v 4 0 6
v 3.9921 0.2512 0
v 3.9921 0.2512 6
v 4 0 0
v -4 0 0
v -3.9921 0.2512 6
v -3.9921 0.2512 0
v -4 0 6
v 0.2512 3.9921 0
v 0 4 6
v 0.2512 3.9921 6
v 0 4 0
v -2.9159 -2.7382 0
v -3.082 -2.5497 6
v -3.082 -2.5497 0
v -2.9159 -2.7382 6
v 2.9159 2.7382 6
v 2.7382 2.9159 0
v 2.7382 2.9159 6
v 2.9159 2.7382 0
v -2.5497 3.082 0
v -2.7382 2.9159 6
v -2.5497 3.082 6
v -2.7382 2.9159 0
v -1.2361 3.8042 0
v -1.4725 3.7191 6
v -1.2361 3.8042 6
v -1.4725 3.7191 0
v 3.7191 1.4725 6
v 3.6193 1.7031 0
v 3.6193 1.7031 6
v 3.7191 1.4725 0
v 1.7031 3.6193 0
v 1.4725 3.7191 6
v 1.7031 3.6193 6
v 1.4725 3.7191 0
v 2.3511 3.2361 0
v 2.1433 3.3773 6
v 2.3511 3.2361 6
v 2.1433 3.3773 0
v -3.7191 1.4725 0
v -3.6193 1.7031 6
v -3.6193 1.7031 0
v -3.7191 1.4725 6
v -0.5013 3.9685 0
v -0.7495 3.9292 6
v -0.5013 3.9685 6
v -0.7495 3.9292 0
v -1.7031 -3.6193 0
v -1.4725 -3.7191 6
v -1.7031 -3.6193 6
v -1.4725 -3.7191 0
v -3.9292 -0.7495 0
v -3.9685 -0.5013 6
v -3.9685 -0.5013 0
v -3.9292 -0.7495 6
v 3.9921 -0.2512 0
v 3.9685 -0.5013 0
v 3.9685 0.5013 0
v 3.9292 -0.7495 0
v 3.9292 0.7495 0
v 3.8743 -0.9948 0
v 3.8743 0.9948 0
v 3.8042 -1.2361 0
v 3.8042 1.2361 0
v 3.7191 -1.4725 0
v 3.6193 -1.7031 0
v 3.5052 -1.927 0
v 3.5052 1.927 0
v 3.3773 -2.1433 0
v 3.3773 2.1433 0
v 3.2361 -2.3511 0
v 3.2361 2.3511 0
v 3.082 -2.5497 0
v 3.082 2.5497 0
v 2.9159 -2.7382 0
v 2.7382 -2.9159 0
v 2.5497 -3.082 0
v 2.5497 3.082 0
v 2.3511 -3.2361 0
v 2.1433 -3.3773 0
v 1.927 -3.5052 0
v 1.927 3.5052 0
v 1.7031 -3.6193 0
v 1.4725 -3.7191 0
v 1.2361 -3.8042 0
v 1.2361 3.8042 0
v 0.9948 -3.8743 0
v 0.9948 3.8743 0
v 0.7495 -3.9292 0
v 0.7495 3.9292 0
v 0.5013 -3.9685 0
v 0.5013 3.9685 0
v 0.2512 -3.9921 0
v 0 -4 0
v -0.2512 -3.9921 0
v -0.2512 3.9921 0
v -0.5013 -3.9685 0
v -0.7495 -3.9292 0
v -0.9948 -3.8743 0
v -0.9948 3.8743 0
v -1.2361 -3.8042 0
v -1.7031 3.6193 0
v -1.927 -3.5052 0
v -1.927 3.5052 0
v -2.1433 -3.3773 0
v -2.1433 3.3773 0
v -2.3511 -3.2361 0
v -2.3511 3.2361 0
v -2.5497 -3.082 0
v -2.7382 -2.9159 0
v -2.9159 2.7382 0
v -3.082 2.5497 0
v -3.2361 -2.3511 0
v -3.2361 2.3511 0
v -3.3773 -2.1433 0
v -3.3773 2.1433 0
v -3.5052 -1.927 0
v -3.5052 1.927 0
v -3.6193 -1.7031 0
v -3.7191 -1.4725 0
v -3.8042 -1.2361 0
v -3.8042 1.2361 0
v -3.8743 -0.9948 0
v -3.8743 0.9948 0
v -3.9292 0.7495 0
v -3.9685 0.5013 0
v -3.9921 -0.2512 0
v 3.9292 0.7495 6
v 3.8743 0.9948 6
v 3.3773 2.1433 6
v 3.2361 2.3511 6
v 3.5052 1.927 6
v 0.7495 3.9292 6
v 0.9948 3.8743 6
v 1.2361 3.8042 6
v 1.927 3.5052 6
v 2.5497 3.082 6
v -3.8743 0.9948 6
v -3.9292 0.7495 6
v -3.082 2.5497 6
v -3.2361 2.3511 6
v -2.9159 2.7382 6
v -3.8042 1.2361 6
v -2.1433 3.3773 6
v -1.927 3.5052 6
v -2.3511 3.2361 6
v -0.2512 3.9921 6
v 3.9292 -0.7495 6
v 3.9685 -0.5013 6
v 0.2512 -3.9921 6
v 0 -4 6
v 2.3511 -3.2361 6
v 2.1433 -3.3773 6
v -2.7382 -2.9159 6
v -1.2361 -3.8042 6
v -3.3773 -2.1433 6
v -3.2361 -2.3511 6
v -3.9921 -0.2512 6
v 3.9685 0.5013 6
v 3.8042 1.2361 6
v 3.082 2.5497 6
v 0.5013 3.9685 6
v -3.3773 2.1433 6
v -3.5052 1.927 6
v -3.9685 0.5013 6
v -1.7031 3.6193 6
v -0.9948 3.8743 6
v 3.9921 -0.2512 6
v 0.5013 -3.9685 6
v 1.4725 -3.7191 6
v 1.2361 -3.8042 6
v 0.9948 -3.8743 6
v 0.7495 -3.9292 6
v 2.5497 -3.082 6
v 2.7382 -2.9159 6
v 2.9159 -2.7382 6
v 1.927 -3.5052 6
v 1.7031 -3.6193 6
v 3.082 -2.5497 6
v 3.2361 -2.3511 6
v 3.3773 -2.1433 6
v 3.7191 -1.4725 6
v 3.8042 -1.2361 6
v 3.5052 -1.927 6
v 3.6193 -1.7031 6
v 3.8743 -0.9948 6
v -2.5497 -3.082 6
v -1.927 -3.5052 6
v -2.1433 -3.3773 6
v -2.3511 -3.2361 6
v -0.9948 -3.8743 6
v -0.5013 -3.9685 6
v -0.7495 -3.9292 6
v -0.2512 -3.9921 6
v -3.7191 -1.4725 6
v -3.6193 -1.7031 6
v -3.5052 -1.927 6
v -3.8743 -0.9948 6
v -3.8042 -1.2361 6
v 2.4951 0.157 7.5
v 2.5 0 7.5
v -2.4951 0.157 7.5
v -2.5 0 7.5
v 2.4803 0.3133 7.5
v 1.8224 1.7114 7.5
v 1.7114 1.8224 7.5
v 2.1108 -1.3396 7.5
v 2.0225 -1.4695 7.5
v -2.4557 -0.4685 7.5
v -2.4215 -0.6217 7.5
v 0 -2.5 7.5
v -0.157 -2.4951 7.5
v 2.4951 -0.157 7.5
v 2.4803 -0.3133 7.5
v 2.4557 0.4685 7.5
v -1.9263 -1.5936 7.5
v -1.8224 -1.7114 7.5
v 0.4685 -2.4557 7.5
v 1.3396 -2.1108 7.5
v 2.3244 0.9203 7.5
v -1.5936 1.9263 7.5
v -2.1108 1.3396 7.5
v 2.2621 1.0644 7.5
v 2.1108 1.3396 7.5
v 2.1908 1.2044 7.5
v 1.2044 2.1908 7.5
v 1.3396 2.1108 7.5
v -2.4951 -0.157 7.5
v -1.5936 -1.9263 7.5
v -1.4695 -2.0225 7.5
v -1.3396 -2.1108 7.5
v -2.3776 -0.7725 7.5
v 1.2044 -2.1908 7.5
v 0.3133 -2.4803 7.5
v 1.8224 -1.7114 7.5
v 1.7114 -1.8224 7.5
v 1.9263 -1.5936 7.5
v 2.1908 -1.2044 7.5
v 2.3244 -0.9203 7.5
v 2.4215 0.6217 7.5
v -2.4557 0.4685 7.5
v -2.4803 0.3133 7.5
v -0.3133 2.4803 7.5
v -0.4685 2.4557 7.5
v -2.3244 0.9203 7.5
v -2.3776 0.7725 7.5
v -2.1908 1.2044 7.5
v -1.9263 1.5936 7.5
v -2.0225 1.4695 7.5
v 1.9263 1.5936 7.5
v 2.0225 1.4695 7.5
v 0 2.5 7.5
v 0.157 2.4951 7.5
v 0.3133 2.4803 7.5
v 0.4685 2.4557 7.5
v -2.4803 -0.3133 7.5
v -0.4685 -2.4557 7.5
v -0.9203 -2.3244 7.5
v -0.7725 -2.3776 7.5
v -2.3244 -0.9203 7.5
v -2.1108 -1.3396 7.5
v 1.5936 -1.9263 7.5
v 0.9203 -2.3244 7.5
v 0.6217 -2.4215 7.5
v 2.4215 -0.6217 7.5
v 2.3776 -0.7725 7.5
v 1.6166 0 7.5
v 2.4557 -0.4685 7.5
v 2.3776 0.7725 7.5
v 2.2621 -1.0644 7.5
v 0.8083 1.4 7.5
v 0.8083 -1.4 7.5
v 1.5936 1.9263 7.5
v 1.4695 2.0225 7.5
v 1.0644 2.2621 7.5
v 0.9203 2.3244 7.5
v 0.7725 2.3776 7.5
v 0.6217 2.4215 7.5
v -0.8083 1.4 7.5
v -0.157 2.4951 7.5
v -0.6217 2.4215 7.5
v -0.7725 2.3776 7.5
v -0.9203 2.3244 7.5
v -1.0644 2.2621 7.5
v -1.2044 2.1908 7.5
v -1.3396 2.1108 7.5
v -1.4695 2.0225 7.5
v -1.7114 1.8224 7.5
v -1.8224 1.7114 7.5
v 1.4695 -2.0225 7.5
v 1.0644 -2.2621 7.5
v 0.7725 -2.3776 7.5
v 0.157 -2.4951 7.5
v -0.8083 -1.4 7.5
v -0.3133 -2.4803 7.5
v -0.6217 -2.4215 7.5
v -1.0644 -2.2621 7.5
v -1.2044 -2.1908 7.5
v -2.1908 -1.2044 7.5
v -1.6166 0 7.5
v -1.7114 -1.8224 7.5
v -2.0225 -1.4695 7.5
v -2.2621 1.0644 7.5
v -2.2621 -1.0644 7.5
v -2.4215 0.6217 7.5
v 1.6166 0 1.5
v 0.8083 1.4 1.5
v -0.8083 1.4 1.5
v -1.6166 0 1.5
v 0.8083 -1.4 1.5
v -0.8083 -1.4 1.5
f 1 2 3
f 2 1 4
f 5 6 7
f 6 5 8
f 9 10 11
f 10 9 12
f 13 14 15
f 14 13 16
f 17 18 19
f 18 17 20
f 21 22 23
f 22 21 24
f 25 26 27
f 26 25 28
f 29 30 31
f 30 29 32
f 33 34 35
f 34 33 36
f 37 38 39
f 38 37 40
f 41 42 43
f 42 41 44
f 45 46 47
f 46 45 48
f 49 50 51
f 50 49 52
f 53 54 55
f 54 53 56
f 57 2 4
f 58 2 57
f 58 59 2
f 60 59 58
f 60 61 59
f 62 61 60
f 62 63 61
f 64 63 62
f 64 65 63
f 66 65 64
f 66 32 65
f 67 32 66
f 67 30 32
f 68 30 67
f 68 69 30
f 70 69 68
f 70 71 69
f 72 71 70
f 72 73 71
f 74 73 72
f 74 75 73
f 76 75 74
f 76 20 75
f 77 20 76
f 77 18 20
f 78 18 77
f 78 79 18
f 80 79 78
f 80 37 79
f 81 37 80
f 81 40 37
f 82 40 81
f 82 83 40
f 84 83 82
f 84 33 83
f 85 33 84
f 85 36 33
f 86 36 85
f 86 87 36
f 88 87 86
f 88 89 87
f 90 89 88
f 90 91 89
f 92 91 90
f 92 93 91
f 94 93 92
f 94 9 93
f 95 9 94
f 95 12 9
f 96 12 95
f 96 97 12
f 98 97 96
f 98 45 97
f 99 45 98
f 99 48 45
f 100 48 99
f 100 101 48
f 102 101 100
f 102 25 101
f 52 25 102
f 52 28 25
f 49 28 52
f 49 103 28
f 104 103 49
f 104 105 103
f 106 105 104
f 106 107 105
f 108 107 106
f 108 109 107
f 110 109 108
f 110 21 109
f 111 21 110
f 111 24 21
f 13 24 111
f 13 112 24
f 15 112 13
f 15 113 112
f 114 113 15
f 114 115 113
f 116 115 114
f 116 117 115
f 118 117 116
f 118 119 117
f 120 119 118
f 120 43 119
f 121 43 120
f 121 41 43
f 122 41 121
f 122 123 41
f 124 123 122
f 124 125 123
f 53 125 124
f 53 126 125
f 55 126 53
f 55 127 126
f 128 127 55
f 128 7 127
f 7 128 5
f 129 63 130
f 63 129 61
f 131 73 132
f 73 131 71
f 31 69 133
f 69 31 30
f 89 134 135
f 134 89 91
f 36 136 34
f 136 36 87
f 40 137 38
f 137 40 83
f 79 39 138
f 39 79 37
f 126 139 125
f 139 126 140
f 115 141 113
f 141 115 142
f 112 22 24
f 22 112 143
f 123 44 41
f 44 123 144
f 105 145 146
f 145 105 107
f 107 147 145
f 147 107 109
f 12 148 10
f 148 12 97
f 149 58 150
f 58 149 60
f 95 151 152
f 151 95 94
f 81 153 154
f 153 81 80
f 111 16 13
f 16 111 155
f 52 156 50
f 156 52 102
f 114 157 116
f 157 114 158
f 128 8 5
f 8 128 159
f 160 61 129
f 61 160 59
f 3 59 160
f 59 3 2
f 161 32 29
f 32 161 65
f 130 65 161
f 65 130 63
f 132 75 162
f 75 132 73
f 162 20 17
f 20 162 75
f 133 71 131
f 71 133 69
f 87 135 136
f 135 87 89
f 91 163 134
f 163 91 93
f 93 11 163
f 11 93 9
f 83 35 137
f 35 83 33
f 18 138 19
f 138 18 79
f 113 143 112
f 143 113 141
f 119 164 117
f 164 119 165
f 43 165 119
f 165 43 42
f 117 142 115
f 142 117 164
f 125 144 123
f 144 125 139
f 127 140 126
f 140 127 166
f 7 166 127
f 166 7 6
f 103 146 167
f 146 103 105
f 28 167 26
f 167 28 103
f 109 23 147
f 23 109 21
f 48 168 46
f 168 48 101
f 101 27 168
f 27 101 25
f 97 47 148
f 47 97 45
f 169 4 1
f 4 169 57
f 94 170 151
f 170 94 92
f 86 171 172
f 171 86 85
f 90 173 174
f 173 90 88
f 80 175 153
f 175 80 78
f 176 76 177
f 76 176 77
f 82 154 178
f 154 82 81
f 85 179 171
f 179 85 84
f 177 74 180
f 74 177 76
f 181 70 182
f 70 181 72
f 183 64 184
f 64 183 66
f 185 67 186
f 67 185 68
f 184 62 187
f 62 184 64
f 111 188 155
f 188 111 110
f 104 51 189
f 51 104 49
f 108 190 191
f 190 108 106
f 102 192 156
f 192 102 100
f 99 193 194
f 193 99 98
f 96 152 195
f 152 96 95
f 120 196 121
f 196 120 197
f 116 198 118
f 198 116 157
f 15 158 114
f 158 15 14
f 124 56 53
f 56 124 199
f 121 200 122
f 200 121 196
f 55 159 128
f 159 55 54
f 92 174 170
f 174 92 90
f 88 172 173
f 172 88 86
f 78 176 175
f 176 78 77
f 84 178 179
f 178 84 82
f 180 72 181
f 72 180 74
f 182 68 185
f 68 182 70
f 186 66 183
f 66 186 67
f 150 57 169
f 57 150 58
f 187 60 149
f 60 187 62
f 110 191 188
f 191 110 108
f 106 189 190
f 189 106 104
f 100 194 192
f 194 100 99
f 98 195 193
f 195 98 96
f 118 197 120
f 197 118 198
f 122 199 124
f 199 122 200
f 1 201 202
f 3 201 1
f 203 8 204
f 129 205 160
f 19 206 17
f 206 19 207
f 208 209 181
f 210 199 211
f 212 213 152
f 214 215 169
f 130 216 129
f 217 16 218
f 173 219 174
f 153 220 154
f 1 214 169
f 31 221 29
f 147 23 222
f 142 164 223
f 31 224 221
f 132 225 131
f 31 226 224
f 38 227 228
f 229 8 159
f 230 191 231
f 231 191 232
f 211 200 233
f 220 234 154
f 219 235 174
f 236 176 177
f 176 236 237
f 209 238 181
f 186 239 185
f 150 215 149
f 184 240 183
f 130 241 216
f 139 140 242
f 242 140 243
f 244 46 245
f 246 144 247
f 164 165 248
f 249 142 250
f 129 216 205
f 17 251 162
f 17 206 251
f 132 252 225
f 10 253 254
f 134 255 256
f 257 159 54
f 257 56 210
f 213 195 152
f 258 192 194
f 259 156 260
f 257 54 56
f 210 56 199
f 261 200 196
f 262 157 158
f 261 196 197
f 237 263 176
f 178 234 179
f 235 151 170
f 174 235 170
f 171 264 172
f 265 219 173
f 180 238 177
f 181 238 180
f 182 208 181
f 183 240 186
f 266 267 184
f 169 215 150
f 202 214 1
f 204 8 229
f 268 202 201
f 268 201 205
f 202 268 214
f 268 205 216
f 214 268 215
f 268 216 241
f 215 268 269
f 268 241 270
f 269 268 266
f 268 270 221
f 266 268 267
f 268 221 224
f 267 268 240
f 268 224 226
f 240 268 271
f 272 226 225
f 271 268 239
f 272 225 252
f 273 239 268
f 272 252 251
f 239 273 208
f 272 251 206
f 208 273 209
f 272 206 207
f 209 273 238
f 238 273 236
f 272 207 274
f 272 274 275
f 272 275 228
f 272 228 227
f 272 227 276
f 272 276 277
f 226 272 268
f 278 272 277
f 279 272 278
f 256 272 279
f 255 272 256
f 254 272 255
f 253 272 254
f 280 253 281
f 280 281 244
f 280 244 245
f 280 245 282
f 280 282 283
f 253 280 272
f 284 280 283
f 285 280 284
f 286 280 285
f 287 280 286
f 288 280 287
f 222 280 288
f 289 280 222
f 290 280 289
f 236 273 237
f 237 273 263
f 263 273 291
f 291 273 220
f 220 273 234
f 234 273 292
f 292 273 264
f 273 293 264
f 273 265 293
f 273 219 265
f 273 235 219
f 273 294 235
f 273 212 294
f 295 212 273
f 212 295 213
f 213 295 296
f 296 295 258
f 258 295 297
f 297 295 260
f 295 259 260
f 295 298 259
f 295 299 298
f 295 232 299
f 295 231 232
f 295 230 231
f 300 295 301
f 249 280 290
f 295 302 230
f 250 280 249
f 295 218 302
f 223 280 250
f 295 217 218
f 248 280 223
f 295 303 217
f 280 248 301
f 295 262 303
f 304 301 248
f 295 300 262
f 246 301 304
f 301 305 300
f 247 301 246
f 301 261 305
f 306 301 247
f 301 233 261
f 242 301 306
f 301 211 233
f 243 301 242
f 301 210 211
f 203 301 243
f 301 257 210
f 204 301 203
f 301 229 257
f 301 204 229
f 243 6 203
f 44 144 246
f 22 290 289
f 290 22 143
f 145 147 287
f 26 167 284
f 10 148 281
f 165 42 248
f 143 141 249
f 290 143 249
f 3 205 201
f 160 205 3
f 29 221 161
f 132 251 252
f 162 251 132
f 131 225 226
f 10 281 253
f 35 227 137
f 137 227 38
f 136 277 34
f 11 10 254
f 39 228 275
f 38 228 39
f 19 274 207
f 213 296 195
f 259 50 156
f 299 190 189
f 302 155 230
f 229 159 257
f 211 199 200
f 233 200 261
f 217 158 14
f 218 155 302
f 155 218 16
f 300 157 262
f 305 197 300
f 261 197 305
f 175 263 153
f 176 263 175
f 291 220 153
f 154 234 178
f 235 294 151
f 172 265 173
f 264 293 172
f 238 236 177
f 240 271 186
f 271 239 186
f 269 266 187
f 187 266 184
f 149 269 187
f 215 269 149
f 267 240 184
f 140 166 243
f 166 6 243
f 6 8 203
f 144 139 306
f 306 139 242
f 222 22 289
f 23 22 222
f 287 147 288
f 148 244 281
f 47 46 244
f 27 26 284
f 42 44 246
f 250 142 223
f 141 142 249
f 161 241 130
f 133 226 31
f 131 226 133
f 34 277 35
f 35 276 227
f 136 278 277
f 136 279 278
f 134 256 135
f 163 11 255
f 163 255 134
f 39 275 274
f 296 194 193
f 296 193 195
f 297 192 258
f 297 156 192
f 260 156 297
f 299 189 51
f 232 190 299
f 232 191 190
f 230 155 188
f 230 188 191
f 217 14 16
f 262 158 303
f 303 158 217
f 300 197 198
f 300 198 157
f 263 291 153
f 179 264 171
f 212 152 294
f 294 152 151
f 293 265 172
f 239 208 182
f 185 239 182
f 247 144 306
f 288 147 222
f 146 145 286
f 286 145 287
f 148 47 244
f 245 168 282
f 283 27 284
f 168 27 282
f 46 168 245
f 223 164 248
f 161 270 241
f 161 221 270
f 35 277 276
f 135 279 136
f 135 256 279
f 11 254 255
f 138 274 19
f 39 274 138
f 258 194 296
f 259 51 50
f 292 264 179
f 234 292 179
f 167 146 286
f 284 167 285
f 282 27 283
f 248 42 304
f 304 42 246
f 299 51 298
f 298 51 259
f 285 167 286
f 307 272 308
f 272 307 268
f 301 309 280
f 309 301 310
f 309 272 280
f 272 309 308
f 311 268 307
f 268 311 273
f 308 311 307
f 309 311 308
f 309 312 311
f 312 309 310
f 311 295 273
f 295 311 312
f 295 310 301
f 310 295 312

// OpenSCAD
// file: polyhole_re.scad
// polyholes - correct diameter for printing holes
//
// See http://hydraraptor.blogspot.com/2011/02/polyholes.html
//
// inspired by Josef Prusa (Prusa i3)
//
// GNU GPL v3
// R.E. 2017.06



function polyhole_n(r) = max(round(4 * r),3);
function polyhole_radius(r) = r / cos (180 / polyhole_n(r));

module polyhole(h, r, center = false) {
    rotate([0,0,0])
        cylinder(h = h, r = polyhole_radius(r), center = center, $fn = polyhole_n(r));
}


//test
high=20;
radius=4;
cylinder(high,r=radius,center=false);
translate([-3*radius,0,0])
  polyhole(high,radius,center=false);
echo("<b>Radius=</b>",radius);
echo("<b>polyhole_rad_n=</b>",polyhole_n(radius));
echo("<b>polyhole_radius=</b>",polyhole_radius(radius));
// file: pushfit_hole_re.scad
// pushfit_hole - holes for rods
// corrected diameter 
// extension on top for printing without briding problems
//
// inspired by Josef Prusa (Prusa i3)
//
// GNU GPL v3
// R.E.

use <polyhole_re.scad>

module pushfit_hole(length,diameter,overhang_angle=60,bridge_distance=0.4){
    // for better printing 45° < overhang_angle < 90° 
  
  radius = diameter / 2;
     
  polyhole(length,radius,center=false);
  if (overhang_angle >= 45 && overhang_angle < 90)
    difference(){
      translate([0,polyhole_radius(radius) * (sin(overhang_angle) - 1 / sqrt(2) + cos(overhang_angle)),length/2]) rotate([0,0,45]) cube(size = [polyhole_radius(radius),polyhole_radius(radius),length], center = true);
    translate([0,5/4*radius+bridge_distance,length/2]) cube([radius ,radius/2,length+1], center = true);
 }
}


//test
rotate(a=[90,0,0])
  pushfit_hole(50,8,60,0.3);
// main file
// Anet A6 X-End - Z-Endstop Cap
//
// GNU GPL v3
// R.E. 2017.06

use <pushfit_hole_re.scad>
use <polyhole_re.scad>

difference(){
  union(){
    cylinder(6,r=4,$fn=100,center=false);
    translate([0,0,6])
      cylinder(1.5,r1=4,r2=2.5,$fn=100,center=false);
  }
  translate([0,0,1.5])
    polyhole(10,r=1.4);
}
  
